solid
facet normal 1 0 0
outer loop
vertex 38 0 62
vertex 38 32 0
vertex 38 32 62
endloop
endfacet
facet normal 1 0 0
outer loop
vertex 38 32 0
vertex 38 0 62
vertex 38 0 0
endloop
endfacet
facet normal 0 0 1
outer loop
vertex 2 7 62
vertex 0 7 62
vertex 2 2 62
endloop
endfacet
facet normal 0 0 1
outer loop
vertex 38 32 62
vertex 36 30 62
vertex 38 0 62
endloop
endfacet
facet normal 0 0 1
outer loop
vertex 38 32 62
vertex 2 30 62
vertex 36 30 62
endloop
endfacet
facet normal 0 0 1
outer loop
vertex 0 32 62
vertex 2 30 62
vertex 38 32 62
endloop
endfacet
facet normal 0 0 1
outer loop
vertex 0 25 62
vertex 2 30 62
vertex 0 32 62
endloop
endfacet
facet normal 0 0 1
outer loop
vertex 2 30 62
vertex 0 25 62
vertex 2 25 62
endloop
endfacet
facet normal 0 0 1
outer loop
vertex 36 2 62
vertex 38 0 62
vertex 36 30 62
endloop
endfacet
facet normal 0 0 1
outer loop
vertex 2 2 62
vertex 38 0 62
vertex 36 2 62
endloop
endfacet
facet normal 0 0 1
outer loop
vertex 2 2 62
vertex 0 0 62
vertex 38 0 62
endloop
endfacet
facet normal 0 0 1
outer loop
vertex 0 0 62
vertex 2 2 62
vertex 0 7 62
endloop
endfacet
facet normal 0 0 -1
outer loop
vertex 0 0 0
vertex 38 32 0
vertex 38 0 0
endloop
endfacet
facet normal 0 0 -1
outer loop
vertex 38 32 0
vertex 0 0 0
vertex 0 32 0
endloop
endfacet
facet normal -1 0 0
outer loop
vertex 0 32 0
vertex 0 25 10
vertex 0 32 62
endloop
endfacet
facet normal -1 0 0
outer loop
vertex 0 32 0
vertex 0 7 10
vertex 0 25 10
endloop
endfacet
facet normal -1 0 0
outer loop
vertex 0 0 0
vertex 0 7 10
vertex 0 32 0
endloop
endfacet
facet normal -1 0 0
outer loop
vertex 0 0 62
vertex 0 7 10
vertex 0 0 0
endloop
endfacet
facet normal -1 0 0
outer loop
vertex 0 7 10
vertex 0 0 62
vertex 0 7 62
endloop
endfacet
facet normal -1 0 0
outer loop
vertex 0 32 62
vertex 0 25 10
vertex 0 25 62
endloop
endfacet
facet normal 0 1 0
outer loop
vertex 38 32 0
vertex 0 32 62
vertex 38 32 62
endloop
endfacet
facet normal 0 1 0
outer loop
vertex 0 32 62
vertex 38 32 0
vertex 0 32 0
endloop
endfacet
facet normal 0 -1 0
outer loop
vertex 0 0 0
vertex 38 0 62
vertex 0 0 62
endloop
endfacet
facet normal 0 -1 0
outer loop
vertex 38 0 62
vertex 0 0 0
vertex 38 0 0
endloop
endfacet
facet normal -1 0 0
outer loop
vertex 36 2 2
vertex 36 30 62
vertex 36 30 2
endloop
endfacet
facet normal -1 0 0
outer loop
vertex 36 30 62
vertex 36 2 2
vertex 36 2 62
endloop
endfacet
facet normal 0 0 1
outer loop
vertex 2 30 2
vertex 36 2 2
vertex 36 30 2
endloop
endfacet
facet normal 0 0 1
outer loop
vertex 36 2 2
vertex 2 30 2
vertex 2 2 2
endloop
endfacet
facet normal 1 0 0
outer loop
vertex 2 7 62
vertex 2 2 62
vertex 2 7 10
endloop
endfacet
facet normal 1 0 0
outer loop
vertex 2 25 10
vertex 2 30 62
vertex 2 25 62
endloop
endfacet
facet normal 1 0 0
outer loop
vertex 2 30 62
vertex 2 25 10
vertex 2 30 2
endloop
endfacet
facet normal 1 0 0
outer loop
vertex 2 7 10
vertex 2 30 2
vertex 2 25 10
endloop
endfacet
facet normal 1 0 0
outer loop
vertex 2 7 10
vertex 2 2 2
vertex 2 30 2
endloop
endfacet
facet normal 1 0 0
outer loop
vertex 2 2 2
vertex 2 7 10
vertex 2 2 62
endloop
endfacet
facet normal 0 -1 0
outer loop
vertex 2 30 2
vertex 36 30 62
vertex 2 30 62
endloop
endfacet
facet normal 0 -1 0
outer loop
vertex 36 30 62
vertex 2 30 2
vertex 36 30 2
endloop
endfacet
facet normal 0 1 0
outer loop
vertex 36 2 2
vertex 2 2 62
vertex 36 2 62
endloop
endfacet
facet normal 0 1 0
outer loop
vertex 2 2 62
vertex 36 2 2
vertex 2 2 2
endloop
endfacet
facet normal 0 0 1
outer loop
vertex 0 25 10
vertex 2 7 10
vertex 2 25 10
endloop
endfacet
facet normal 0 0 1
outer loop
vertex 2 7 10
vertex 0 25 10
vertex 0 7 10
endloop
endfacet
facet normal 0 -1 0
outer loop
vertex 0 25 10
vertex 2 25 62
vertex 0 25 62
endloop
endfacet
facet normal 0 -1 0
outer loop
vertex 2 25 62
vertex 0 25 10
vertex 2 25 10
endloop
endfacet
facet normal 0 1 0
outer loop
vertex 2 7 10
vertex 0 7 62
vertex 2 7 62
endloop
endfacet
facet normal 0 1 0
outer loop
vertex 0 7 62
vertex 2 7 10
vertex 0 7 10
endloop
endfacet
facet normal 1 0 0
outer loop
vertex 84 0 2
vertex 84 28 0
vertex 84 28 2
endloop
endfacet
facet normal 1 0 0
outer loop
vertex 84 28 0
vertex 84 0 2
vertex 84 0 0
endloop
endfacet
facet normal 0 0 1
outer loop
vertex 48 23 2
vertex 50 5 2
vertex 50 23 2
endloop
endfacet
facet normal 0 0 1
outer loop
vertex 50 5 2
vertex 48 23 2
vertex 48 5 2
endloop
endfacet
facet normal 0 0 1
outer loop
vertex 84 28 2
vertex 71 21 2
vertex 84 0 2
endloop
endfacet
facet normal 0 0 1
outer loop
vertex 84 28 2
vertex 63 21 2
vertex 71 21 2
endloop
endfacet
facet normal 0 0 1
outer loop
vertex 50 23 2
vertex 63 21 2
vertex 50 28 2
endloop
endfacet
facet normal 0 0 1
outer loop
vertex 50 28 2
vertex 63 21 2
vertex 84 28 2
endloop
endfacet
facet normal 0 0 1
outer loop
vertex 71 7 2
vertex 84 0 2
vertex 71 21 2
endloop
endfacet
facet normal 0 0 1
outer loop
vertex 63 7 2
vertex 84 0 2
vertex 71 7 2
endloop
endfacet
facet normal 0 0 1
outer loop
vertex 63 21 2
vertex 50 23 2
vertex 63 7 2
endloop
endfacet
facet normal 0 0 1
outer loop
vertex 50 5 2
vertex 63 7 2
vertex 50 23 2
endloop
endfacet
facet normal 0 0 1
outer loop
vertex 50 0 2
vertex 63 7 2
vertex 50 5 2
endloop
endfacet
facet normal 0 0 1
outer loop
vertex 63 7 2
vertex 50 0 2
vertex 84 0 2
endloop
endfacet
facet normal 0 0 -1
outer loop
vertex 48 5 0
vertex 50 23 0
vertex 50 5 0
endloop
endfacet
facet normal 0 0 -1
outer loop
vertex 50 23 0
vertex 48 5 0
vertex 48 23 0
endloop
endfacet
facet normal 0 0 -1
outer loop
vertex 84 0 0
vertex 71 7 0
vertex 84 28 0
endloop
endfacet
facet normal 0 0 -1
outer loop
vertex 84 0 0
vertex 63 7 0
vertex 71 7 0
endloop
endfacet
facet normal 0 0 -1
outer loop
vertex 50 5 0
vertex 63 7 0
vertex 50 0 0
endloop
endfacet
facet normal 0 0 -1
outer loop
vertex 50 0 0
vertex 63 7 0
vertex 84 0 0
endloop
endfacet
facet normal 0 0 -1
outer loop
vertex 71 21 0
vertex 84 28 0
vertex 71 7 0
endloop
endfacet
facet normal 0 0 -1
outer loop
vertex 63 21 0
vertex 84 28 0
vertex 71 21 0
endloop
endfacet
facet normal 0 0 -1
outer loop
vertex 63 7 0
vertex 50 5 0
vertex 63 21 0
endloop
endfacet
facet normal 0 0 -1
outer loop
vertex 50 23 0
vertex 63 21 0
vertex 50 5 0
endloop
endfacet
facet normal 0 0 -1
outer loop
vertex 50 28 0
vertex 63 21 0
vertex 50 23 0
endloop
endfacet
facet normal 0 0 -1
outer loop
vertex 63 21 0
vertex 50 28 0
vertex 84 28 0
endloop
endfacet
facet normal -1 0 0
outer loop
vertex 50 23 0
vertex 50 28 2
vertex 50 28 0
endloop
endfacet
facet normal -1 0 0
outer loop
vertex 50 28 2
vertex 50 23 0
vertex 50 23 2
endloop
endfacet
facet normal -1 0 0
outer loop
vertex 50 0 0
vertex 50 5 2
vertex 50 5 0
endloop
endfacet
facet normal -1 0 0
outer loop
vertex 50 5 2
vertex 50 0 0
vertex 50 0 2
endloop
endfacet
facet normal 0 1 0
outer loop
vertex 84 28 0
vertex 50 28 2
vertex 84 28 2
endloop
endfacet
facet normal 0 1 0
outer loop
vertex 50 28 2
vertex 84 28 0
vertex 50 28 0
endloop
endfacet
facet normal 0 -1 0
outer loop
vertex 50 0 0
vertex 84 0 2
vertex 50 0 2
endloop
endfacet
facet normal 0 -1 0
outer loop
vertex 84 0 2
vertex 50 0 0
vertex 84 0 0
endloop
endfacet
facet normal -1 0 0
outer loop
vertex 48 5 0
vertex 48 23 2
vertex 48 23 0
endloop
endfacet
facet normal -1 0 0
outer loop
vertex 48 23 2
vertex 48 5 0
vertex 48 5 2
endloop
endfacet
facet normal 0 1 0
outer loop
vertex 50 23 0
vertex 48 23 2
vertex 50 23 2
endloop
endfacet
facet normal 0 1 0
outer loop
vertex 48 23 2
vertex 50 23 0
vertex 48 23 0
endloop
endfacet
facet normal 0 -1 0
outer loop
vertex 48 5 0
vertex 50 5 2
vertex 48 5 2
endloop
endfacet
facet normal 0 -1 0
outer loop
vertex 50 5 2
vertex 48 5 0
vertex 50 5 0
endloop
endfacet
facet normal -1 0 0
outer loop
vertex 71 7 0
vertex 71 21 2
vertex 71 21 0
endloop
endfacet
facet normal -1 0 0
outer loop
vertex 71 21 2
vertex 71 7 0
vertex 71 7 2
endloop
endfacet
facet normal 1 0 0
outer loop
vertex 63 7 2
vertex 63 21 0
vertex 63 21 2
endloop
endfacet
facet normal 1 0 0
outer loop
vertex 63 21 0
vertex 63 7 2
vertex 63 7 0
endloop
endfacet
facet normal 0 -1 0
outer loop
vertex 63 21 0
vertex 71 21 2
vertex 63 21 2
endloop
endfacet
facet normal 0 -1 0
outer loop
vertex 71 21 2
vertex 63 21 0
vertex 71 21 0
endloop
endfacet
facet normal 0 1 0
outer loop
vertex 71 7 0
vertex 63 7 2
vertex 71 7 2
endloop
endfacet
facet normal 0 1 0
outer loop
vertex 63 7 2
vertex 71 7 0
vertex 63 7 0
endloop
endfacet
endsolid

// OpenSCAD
difference(){
    cube([38,32,62]);
    translate([2,2,2]){
        cube([34,28,63]);    
    }
    translate([-2,7,10]){
        cube([5,18,53]);
    } 
}
translate([50,0,0]){
    difference(){
        union(){
            cube([34,28,2]);
            translate([-2,5,0]){
                cube([3,18,2]);
            }
        }
        translate([13,7,-1]){
            cube([8,14,5]);
        }
    }
}
